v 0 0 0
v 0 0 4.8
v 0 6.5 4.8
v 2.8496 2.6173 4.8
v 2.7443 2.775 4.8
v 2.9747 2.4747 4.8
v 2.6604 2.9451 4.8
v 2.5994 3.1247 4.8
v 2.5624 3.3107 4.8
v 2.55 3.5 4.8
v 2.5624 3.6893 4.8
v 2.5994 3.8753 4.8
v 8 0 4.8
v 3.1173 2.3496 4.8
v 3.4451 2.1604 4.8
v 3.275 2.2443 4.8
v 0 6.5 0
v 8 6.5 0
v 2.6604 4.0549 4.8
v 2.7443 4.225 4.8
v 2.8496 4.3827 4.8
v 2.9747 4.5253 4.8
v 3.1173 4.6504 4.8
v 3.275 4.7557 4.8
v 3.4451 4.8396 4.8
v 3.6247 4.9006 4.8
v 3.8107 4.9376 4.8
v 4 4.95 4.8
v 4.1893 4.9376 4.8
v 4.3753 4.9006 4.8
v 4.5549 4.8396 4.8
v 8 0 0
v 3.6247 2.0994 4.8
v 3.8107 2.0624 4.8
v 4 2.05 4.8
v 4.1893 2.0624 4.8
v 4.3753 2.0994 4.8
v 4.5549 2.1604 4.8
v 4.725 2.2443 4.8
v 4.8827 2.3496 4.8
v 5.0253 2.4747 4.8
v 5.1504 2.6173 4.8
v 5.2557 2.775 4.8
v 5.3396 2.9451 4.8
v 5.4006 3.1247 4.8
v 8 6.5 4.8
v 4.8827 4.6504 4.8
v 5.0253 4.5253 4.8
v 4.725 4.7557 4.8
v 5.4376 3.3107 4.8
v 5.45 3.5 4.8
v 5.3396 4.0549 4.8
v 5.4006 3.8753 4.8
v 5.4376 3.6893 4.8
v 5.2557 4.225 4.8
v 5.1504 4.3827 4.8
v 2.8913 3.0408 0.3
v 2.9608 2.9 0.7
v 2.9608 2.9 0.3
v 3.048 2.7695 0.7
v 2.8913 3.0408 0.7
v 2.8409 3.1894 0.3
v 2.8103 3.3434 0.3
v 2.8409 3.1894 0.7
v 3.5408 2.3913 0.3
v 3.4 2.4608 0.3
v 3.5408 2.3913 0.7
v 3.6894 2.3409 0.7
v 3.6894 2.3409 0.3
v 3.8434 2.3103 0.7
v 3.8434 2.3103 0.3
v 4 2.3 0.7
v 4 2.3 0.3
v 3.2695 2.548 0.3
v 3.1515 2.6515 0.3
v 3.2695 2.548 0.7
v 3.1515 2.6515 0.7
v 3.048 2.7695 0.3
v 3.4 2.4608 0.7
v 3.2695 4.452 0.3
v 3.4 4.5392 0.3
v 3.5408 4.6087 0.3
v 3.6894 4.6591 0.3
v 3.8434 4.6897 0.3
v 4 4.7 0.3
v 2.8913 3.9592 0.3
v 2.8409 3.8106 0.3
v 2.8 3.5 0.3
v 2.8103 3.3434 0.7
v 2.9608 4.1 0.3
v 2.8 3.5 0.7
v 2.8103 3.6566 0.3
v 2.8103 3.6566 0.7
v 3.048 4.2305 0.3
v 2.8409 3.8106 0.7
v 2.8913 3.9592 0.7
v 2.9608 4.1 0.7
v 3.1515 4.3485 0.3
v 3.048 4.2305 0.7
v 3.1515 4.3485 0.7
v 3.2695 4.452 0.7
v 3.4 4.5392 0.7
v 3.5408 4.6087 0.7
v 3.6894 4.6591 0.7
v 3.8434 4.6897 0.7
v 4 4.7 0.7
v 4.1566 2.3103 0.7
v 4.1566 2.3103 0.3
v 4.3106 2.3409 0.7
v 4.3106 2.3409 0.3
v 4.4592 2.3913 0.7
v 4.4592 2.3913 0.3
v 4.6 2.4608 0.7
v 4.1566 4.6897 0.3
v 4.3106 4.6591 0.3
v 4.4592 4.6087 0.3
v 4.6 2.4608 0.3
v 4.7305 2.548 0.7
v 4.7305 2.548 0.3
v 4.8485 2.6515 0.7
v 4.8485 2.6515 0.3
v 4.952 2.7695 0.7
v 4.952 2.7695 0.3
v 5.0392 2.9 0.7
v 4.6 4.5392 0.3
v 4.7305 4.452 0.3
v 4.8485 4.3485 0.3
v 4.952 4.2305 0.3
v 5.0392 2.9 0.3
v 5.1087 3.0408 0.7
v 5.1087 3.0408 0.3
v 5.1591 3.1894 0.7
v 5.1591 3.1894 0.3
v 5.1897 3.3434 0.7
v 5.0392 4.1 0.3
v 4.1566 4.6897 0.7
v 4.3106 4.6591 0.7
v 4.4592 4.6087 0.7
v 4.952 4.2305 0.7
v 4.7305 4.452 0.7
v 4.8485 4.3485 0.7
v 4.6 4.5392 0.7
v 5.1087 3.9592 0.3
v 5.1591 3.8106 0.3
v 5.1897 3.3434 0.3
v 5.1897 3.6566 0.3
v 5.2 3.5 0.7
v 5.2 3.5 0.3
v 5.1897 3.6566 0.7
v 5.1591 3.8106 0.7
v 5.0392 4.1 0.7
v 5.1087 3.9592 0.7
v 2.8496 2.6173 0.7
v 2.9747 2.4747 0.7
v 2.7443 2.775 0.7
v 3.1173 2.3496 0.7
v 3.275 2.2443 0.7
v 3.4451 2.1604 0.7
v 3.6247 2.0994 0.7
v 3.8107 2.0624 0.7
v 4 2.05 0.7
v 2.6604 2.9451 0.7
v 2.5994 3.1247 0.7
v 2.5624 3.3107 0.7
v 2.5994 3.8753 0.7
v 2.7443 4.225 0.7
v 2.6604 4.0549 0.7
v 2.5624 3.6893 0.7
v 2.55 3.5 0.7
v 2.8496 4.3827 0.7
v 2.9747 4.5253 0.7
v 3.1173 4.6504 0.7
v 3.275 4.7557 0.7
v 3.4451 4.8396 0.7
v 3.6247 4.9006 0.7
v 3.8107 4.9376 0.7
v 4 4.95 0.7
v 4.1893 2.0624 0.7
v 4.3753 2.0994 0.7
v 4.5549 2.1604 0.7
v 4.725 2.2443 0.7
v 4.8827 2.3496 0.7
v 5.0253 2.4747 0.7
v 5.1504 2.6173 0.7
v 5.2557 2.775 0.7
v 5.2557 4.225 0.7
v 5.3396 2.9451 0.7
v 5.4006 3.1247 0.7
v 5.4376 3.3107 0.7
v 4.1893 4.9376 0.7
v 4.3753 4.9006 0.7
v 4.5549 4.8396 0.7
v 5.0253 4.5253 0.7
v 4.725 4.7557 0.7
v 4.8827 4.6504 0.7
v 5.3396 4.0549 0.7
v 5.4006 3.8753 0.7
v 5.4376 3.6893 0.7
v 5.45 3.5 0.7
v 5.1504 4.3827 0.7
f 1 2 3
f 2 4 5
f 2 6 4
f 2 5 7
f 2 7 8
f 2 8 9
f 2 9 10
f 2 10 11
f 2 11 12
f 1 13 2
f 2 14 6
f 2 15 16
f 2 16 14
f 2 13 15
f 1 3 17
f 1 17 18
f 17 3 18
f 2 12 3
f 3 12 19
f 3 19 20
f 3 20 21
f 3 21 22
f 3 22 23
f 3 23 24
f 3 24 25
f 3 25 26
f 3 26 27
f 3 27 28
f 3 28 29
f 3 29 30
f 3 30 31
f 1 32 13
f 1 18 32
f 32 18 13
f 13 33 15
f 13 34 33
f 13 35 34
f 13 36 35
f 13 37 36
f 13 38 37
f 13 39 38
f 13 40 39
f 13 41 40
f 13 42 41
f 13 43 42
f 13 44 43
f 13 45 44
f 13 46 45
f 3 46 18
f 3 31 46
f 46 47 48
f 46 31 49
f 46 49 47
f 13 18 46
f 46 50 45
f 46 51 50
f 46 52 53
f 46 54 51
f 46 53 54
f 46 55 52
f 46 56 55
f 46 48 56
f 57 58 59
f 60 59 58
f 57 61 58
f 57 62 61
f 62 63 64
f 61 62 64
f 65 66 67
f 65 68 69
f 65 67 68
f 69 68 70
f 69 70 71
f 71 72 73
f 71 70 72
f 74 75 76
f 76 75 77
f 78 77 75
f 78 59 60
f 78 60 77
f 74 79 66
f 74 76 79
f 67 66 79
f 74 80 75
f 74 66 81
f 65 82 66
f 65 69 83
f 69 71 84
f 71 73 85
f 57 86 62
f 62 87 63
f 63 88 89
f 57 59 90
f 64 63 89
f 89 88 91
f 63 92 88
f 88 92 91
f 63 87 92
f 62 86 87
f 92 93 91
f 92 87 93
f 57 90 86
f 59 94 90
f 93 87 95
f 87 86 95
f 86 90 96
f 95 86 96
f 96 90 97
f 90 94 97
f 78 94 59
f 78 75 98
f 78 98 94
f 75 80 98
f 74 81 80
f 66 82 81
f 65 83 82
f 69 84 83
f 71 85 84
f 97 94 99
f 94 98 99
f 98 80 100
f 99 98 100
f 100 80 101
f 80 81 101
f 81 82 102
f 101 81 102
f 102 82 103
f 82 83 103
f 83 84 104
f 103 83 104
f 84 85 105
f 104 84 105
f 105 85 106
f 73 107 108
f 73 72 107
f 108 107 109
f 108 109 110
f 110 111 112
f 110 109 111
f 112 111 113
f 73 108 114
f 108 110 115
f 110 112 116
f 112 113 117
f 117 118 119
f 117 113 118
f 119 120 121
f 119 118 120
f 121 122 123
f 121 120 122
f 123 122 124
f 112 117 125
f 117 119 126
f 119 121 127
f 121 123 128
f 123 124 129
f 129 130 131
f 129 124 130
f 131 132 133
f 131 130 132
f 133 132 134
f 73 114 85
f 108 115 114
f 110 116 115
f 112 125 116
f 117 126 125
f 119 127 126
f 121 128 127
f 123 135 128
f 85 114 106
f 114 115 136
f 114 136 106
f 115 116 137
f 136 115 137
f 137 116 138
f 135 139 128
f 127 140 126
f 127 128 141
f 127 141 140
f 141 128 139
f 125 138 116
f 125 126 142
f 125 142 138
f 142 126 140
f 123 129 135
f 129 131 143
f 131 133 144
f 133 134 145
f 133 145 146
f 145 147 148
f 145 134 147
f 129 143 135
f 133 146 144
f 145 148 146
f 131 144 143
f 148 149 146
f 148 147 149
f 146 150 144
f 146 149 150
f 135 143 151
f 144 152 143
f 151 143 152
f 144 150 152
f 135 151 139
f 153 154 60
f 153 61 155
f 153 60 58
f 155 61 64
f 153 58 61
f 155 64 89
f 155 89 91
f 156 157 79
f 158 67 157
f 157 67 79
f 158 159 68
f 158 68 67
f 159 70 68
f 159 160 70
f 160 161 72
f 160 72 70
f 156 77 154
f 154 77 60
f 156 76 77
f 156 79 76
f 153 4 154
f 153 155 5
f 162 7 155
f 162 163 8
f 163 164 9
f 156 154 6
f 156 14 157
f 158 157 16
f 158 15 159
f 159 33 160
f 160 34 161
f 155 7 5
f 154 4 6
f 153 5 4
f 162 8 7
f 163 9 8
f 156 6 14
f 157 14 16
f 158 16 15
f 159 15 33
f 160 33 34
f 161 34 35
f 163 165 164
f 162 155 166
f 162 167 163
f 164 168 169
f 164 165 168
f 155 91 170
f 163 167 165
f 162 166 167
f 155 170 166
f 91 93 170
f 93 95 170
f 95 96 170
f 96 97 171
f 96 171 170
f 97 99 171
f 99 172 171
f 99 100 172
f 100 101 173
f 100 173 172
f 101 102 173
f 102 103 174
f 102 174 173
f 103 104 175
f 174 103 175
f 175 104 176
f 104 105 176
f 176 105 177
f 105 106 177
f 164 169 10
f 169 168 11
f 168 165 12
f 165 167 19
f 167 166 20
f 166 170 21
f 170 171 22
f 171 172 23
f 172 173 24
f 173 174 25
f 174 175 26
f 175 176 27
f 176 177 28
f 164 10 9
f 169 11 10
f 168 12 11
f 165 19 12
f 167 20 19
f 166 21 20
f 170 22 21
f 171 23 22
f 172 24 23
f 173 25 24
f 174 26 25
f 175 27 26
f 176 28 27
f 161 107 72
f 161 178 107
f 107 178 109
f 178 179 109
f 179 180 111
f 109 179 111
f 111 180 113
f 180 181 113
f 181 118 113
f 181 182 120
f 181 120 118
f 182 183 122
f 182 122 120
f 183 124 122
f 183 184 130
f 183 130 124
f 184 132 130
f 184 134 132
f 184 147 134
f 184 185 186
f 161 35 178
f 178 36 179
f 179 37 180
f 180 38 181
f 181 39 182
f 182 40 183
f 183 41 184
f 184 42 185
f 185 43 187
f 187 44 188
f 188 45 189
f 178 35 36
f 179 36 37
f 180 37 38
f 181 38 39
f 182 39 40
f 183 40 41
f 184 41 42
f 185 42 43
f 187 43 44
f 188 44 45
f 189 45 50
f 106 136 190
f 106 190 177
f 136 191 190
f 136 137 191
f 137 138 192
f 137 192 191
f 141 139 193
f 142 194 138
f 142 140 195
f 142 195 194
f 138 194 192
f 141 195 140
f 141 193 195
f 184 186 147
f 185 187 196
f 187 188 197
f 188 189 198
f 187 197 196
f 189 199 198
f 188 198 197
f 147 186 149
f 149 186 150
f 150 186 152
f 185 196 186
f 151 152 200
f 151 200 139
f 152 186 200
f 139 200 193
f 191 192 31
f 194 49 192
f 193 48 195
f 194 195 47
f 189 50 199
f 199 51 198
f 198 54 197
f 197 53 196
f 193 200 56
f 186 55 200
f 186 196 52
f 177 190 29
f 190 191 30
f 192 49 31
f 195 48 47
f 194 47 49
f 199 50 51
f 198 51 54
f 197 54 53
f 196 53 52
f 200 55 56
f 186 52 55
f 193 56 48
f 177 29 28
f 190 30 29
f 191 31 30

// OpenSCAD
// file: ../../../cad/v3/hardware.scad
include <params.scad>
use <enclosure.scad>
// PROVISIONAL purchased component envelopes; not production part drawings.
module motor() {
 union() {
  translate([screw_x-6,motor_front-motor_l,motor_bottom]) cube([12,motor_l,10]);
  yrod(screw_x,motor_front-0.1,axis_z,shaft_d,shaft_l+0.1);
  for(x=[screw_x-3,screw_x+3]) translate([x-0.5,motor_front-motor_l-2,motor_bottom+4.5]) cube([1,2.1,1]);
 }
}
module shaft() { yrod(screw_x,motor_front,axis_z,shaft_d,shaft_l); }
module drive_nut(t=0) {
 difference() {
  translate([screw_x,carriage_back+t+nut_slot_y+0.1,axis_z]) rotate([-90,0,0]) union() {
   cylinder(d=nut_af/cos(30),h=nut_height,$fn=6);
   cylinder(d=nut_flange_d,h=nut_flange_t);
  }
  yrod(screw_x,carriage_back+t+nut_slot_y,axis_z,shaft_d+0.2,nut_height+0.2);
 }
}
module battery_holder(raise=0) {
 // Conservative single envelope including cell, contacts and holder.
 translate([93.2,-52,4.5+raise]) cube([22,74,21]);
}
module esp() {
 union() {
  translate([77.5,28,8.3]) cube([17.8,22.5,1.2]);
  translate([78.5,29,9.5]) cube([15.8,20.5,5]);
  translate([81.5,47,9.5]) cube([9,5,3.3]);
 }
}
module power_board() { translate([99,29,8.3]) cube([15,20,7.2]); }
module bridge_board() { translate([98.5,29,20.3]) cube([15,20,7]); }
module oled() {
 union() {
  translate([87.6,53.5,21.5]) cube([27.8,1.6,27.3]);
  translate([88.15,55.1,25]) cube([26.7,1.4,19.3]);
  translate([96.5,50.5,46]) cube([10,3,2.8]);
 }
}
module button() {
 union() {
  xrod(button_panel_x-button_body_l,button_y,button_z,button_body_d,button_body_l);
  xrod(button_panel_x,button_y,button_z,button_flange_d,2);
  xrod(button_panel_x+2,button_y,button_z,12.9,button_face_l-2);
  // Candidate fastening nut envelope; actual nut diameter/thickness to measure.
  difference() {
   xrod(button_panel_x-6,button_y,button_z,17.8,3);
   xrod(button_panel_x-6.1,button_y,button_z,button_hole_d,3.2);
  }
  // Two terminals only; solder and bend radius need physical confirmation.
  for(y=[button_y-2.425,button_y+2.425])
   translate([button_panel_x-button_body_l-button_terminal_l,y-.3,button_z-1]) cube([button_terminal_l,.6,2]);
 }
}
module acrylic() { translate([window_x0-2,window_y0-2,window_pane_z]) cube([window_x1-window_x0+4,window_y1-window_y0+4,window_pane_t]); }
module hinge_pin() { xrod(hinge_pin_x,hinge_y,hinge_z,2,hinge_pin_len); }
module thread_insert(x,y,z) {
 difference() {
  zhole(x,y,z,insert_od,insert_len);
  zhole(x,y,z-.1,2.05,insert_len+.2);
 }
}
module inserts_fixed() {
 for(p=battery_screws) thread_insert(p[0],p[1],2.9);
 for(x=keeper_x) thread_insert(x,keeper_y,44.3);
}
module inserts_lid() {
 for(p=window_clamps) thread_insert(p[0],p[1],window_ear_top);
}
module battery_connector() { translate([91.5,22,12.5]) cube([4.3,5,5]); }
module motor_pads() {
 // 0.3 mm compressed adhesive shim specification, not unspecified empty space.
 translate([78.5,motor_front-motor_l+.1,motor_bottom-0.3]) cube([12,motor_l-.2,0.3]);
 translate([78.5,motor_front-motor_l+.1,motor_top]) cube([12,motor_l-.2,0.3]);
 difference() {
  translate([78.5,-15,motor_bottom]) cube([12,0.3,10]);
  yrod(screw_x,-15.1,axis_z,4.7,0.6);
 }
 // Rear pad clears the two solder terminals.
 difference() {
  translate([78.5,motor_front-motor_l-.3,motor_bottom]) cube([12,0.3,10]);
  translate([80,motor_front-motor_l-.4,motor_bottom+4]) cube([9,0.5,2]);
 }
}
module board_pads() {
 translate([77.5,28,7.4]) cube([17.8,22.5,0.9]);
 translate([99,29,7.4]) cube([15,20,0.9]);
 translate([98.5,29,19.8]) cube([15,20,0.5]);
}

// Illustrative screw envelopes. Intentional pilot-thread interference is excluded
// from solid collision assertions. They remain in preview, BOM and total bounds.
module screw_down(x,y,top,len,d=2,flush=false) {
 color([0.45,0.47,0.5]) {
  zhole(x,y,top-len,d,len);
  if(flush) translate([x,y,top-1.3]) cylinder(d1=d,d2=4,h=1.3);
  else zhole(x,y,top,d==3?5.5:3.6,d==3?2:1.4);
 }
}
// Canonical fastener table: x,y,z,length,diameter,flush,rotationX,headless,owners.
// Preview and interference verification consume this SAME table.
// Stable connection names: keep existing names when adapting module brackets.
function fastener_ids(kind="fixed") = kind=="drive" ? ["F-nut-cap-left","F-nut-cap-right"] :
 kind=="lid" ? ["F-latch-left","F-latch-right","F-window-rear-left","F-window-rear-right","F-window-front-left","F-window-front-right"] :
 ["F-lock-rear-left","F-lock-rear-right","F-lock-front-left","F-lock-front-right",
 "F-guide-rear-left","F-guide-rear-right","F-guide-front","F-motor-left","F-motor-right",
 "F-tray-left","F-tray-right","F-deck-left","F-deck-right","F-esp-left","F-esp-right",
 "F-driver-left","F-driver-right","F-oled-left","F-oled-right",
 "F-battery-rear-left","F-battery-rear-right","F-battery-front-left","F-battery-front-right",
 "F-hinge-left","F-hinge-right"];
function fastener_specs(kind="fixed",t=0) = kind=="drive" ?
 [for(x=[screw_x-4.5,screw_x+4.5]) [x,carriage_back+t-0.2,46,6,2,false,0,false,["nut_cap","nut_carriage"]]] :
 kind=="lid" ? concat(
 [for(x=[93.5,112.5]) [x,8.5,45.2,8,3,false,180,false,["latch_retainer","lid"]]],
 [for(p=window_clamps) [p[0],p[1],window_inner_z,6,2,true,180,false,["window_grille","lid"]]]) :
 concat(
 [for(p=lock_mounts) [p[0],p[1],32.4,6,2,false,0,false,["lock_base","base_box"]]],
 [for(p=guide_screws) [p[0],p[1],44.9,8,2,false,0,false,["guide_cap","lock_base"]]],
 [for(p=motor_screws) [p[0],p[1],motor_clamp_z+2,8,2,false,0,false,["motor_clamp","lock_base"]]],
 [for(p=tray_screws) [p[0],p[1],7.4,4,2,false,0,false,["electronics_tray","base_box"]]],
 [for(p=deck_screws) [p[0],p[1],19.8,6,2,false,0,false,["upper_deck","electronics_tray"]]],
 [for(x=[76.2,96.7]) [x,39,16.8,6,2,false,0,false,["esp_clip","electronics_tray"]]],
 [for(x=[97,115]) [x,38,29.6,6,2,false,0,false,["upper_clip","upper_deck"]]],
 [for(x=[86.8,115.8]) [x,56.3,51,6,2,true,0,false,["oled_bridge","base_box"]]],
 [for(p=battery_screws) [p[0],p[1],0,8,2,true,180,false,["battery_hatch","base_box"]]],
 [for(i=[0:1]) [keeper_x[i],keeper_y,51.1,6,2,true,0,false,[i==0?"hinge_guard_left":"hinge_guard_right","base_box","inserts_fixed"]]]);
module render_screw(s) {
 translate([s[0],s[1],s[2]]) rotate([s[6],0,0])
 if(s[7]) zhole(0,0,-s[3],s[4],s[3]);
 else screw_down(0,0,0,s[3],s[4],s[5]);
}
module fixed_fasteners() { for(s=fastener_specs("fixed")) render_screw(s); }
module moving_fasteners(t=0) { for(s=fastener_specs("drive",t)) render_screw(s); }
module lid_fasteners() { for(s=fastener_specs("lid")) render_screw(s); }
// file: ../../../cad/v3/electronics.scad
include <params.scad>

module electronics_tray() {
 nominal_difference() {
  union() {
   cube_at([74.5,25.5,5.4],[42,27,2]);
   cube_at([74.5,25.5,7.3],[2.5,27,0.7]);
   cube_at([114,25.5,7.3],[2.5,27,0.7]);
   for(p=deck_screws) translate([p[0],p[1],7.3]) cylinder(r=1.3,h=10.7);
   for(x=[76.2,96.7]) cube_at([x-1.2,37,7.3],[2.4,4,7.5]);
  }
  for(p=tray_screws) pilot(p,5.2,8.2,2.4);
  for(x=[90,117]) zhole(x,24,5.2,6.4,3.2);
  for(p=deck_screws) pilot(p,13,18.2,1.7);
  for(x=[76.2,96.7]) zhole(x,39,9.8,1.7,5.2);
  // Tie slots for the lower power board; underside remains accessible off-box.
  for(x=[99.5,112.75]) cube_at([x,33,5.2],[tie_slot_width,8,3.2]);
 }
}
module upper_deck() {
 nominal_difference() {
  union() {
   cube_at([96,25.3,18],[21,27.2,1.8]);
   cube_at([96,27,19.7],[2.3,24,1.8]);
   cube_at([114.3,27,19.7],[2.7,24,1.8]);
   for(x=[97,115]) cube_at([x-1.3,36,19.7],[2.6,4,7.9]);
  }
  for(p=deck_screws) pilot(p,17.8,20,2.4);
  zhole(96.7,39,17.8,4,0.6);
  for(x=[97,115]) zhole(x,38,22.3,1.7,5.5);
 }
}
module esp_clip() {
 nominal_difference() {
  cube_at([74.5,37,14.8],[24,4,2]);
  for(x=[76.2,96.7]) zhole(x,39,14.6,2.4,2.4);
 }
}
module upper_clip() {
 nominal_difference() {
  cube_at([95.5,36,27.6],[21.5,4,2]);
  for(x=[97,115]) zhole(x,38,27.4,2.2,2.4);
 }
}
module oled_bridge() {
 nominal_difference() {
  cube_at([84.3,52.5,49.2],[34,6.1,1.8]);
  for(x=[86.8,115.8]) {
   zhole(x,56.3,49,2.4,2.2);
   countersink(x,56.3,49.7,2.4,4,1.3);
  }
 }
}
// file: ../../../cad/v3/lock.scad
include <params.scad>

module lock_base() {
 nominal_difference() {
  union() {
   cube_at([75,-46,lock_floor],[41,68,3]);
   // Continuous independent bolt support: bed, keyed rail, removable roof.
   cube_at([91,-19,lock_floor_top],[20,24.5,guide_bottom-lock_floor_top]);
   cube_at([bolt_x-key_w/2,-19,key_z0],[key_w,24.5,key_z1-key_z0]);
   for(p=guide_screws) translate([p[0],p[1],lock_floor_top-0.01]) cylinder(r=2.3,h=guide_top-lock_floor_top+0.01);
   for(p=motor_screws) translate([p[0],p[1],lock_floor_top-0.01]) cylinder(r=2.2,h=motor_clamp_z-lock_floor_top+0.01);
   // Motor cradle and front locating shoulder; clamp presses through thin pads.
   cube_at([77.2,-41.8,32.4],[14.6,27.5,motor_bottom-0.3-32.4]);
   cube_at([77.2,-16,32.4],[14.6,2.3,motor_clamp_z-32.4]);
   // Blind front socket: usable bore ends Y=19.8; last 1 mm is solid.
   cube_at([bolt_x-6,14.8,32.4],[12,6,11.6]);
  }
  // Conservative 25x12x10 body; includes the 2.5mm output offset.
  cube_at([screw_x-motor_w/2-0.3,motor_front-motor_l-0.3,motor_bottom-0.3],[motor_w+0.6,motor_l+0.6,motor_h+0.6]);
  yhole(screw_x,-16.3,axis_z,4.7,4);
  // Top-open U seat permits vertical insertion of motor + threaded drive.
  cube_at([screw_x-2.35,-16.3,axis_z],[4.7,4,motor_clamp_z-axis_z+0.2]);
  cube_at([bolt_x-latch_hole/2,13.8,axis_z-latch_hole/2],[latch_hole,6,latch_hole]);
  for(p=lock_mounts) pilot(p,29.2,32.6,2.4);
  for(p=guide_screws) pilot(p,33.2,43.1);
  for(p=motor_screws) pilot(p,motor_clamp_z-6,motor_clamp_z+0.2);
  // Flat reusable rail for future mechanical feedback adapters (SKU pending).
  for(y=[-12,2]) for(x=[112,115]) cube_at([x,y,29.2],[tie_slot_width,5,3.5]);
  // Wiring channels; no closed tunnel around the actuator.
  cube_at([110,15,29.2],[3,7.2,3.5]);
 }
}
module guide_cap() {
 nominal_difference() {
  cube_at([92,-20.5,guide_top],[23,26,guide_cap_t]);
  for(p=guide_screws) pilot(p,42.7,45.1,2.4);
 }
}
module motor_clamp() {
 nominal_difference() {
  cube_at([73.8,-35,motor_clamp_z],[21.4,16,2]);
  for(p=motor_screws) pilot(p,motor_clamp_z-0.2,motor_clamp_z+2.2,2.4);
  cube_at([90.8,-20.7,motor_clamp_z-0.2],[4.6,1.8,2.4]);
 }
}
module bolt_raw(t=0) {
 rear=bolt_back+t;
 nominal_difference() {
  union() {
   cube_at([bolt_x-body_w/2,rear-4,axis_z-body_w/2],[body_w,body_l+4,body_w]);
   cube_at([bolt_x-3,rear+body_l,axis_z-3],[6,tongue_l-taper_l+0.01,6]);
   translate([bolt_x,rear+body_l+tongue_l-taper_l,axis_z]) rotate([-90,0,0])
    linear_extrude(height=taper_l,scale=5/6) square([6,6],center=true);
   // Fork overlaps the main body; lateral/vertical float around the drive finger.
   cube_at([92,rear,axis_z-body_w/2],[7.6,6,body_w]);
  }
  cube_at([91,rear+1.7,35.2],[8.6,2.6,5.6]);
  cube_at([bolt_x-(key_w+0.6)/2,rear-4.1,33.2],[key_w+0.6,body_l+4.2,1.6]);
 }
}
module bolt(t=0,shift=0) { translate([0,0,shift]) bolt_raw(t); }
module nut_carriage(t=0) {
 rear=carriage_back+t;
 nominal_difference() {
  union() {
   cube_at([screw_x-7,rear-2,33.4],[13,10,10.6]);
   cube_at([screw_x+4.5,rear-1.5,36],[8.7,2,4]);
  }
  yhole(screw_x,rear-3,axis_z,shaft_d+0.4,12);
  translate([screw_x,rear+nut_slot_y,axis_z]) rotate([-90,0,0]) {
   cylinder(d=nut_slot_d,h=nut_slot_t,$fn=6);
   cylinder(d=nut_flange_d+0.4,h=nut_flange_t+0.2);
  }
  // Wide open top access for the nut: larger than its circumdiameter.
  cube_at([screw_x-5.3,rear+nut_slot_y,axis_z],[10.6,nut_slot_t,6.2]);
  for(x=[screw_x-4.5,screw_x+4.5]) zhole(x,rear-0.2,39.5,1.7,4.7);
 }
}
module nut_cap(t=0) {
 rear=carriage_back+t;
 nominal_difference() {
  cube_at([screw_x-6.5,rear-2,44],[12.5,10,2]);
  for(x=[screw_x-4.5,screw_x+4.5]) zhole(x,rear-0.2,43.8,2.4,2.4);
 }
}
module fit_bar() { cube([tongue_w,tongue_w,25]); }
module fit_gauge() {
 nominal_difference() {
  cube([30,14,8]);
  for(i=[0:2]) cube_at([2+i*9,3,-0.1],[6.4+i*0.2,6.4+i*0.2,8.2]);
 }
}
// file: ../../../cad/v3/enclosure.scad
include <params.scad>

module base_box() {
 nominal_difference() {
  union() {
   nominal_difference() {
    linear_extrude(height=shell_top) rounded_rect(L,W,4);
    translate([0,0,floor_t]) linear_extrude(height=49) rounded_rect(L-2*wall,W-2*wall,1);
   }
   cube_at([70.5,-57,2.9],[3,114,48.1]);
   // Stationary rear header reaches the same closed height as the lid.
   intersection() {
    cube_at([-117,-60,47],[234,9,8]);
    union() { cube_at([-118,-61,46],[236,11,5]); xrod(-118,hinge_y,hinge_z,8,236); }
   }
   for(k=fixed_knuckles) xrod(k[0],hinge_y,hinge_z,hinge_od,k[1]-k[0]);
   for(x=keeper_x) cube_at([x-4,-54,43.5],[8,6.5,4.8]);
   // Battery chamber: side/end walls and a fixed ceiling connected to outer wall.
   cube_at([90,-54.5,2.9],[2.7,79,23.1]);
   cube_at([90,-54.5,2.9],[30,2.2,23.1]);
   cube_at([90,22.3,2.9],[30,2.2,23.1]);
   cube_at([90,-54.5,26],[30,79,3.4]);
   for(p=battery_screws) translate([p[0],p[1],2.8]) cylinder(r=3,h=5.5);
   for(p=lock_mounts) if(p[0]<90) translate([p[0],p[1],2.9]) cylinder(r=3,h=26.5);
   for(p=tray_screws) translate([p[0],p[1],2.9]) cylinder(r=2.3,h=2.5);
   // OLED bottom stop and two connected side rails.
   cube_at([85.3,53,19.2],[32.4,4.1,2]);
   cube_at([85.3,53,21.1],[2.3,4.1,28.1]);
   cube_at([115.4,53,21.1],[2.3,4.1,28.1]);
   // Recessed side-wall panel: 5.7mm button face stays inside X=120.
   difference() {
    xrod(button_panel_x-3,button_y,button_z,21,120-(button_panel_x-3));
    xrod(button_panel_x,button_y,button_z,18.8,120-button_panel_x+.1);
   }

  }
  // A continuous bore is essential: otherwise the fixed header traps the pin.
  xhole(-120.1,hinge_y,hinge_z,hinge_bore,240.2);
  // Moving hinge knuckles and webs get a rectangular swept-side relief.
  for(k=moving_knuckles) cube_at([k[0]-0.3,-60.2,46.6],[k[1]-k[0]+0.6,9.8,9]);
  for(x=keeper_x) {
   cube_at([x-4.3,-58.3,48.3],[8.6,11.1,7]);
   zhole(x,keeper_y,43.8,2.4,4.6);
   let($feature_kind="insert") zhole(x,keeper_y,44.2,insert_hole_d(),4.2);
  }
  // Battery extraction aperture, and a shallow seat for the flush service plate.
  cube_at([92.7,-52.3,-0.1],[22.6,74.6,8.6]);
  cube_at([87.7,-56.3,-0.1],[31.6,82.6,3]);
  for(p=battery_screws) {
   pilot(p,2.7,8.4,2.4);
   let($feature_kind="insert") zhole(p[0],p[1],2.8,insert_hole_d(),4.1);
  }
  for(p=lock_mounts) pilot(p,26.2,29.6,1.7);
  for(p=tray_screws) pilot(p,3.1,5.6,1.7);
  // Battery connector passage enters the electronics bay, not the actuator above.
  cube_at([91,21.8,12],[7,3.4,6]);
  // Front optical window / recessed button. There is deliberately no USB hole.
  cube_at([87.7,56.7,24.5],[27.6,3.6,20.5]);
  xhole(button_panel_x-3.1,button_y,button_z,button_hole_d,3.2);
  xhole(button_panel_x,button_y,button_z,18.8,120-button_panel_x+.1);
  // PCB insertion channels; stop ledge remains below them.
  cube_at([87.3,53.2,21.3],[28.4,2.2,28.2]);
  cube_at([84.2,52.4,49.2],[34.2,6.3,1.9]);
  for(x=[86.8,115.8]) zhole(x,56.3,43,1.7,6.5);
 }
}
module lid() {
 union() {
 nominal_difference() {
  union() {
   cube_at([-120,-50.5,lid_bottom],[240,110.5,H-lid_bottom]);
   for(k=moving_knuckles) {
    xrod(k[0],hinge_y,hinge_z,hinge_od,k[1]-k[0]);
    cube_at([k[0],-53,51.4],[k[1]-k[0],4,3.6]);
   }
   // Internal T-head receiver and inside-only retainer screw lands.
   cube_at([92,3,46.7],[22,11,4.8]);
   // Inside-only hard stops carry screw preload instead of crushing the pane.
   for(p=window_clamps) cube_at([p[0]-9,p[1]-3.5,window_ear_top],[18,7,lid_bottom+0.1-window_ear_top]);
  }
  for(k=moving_knuckles) xhole(k[0]-0.1,hinge_y,hinge_z,hinge_bore,k[1]-k[0]+0.2);
  cube_at([window_x0,window_y0,window_ear_top-0.1],[window_x1-window_x0,window_y1-window_y0,H-window_ear_top+0.2]);
  // Interior rebate clears the pane; the outside grille closes it.
  cube_at([window_x0-3,window_y0-3,window_ear_top-0.1],[window_x1-window_x0+6,window_y1-window_y0+6,window_outer_z-window_ear_top+0.1]);
  cube_at([94.7,5.7,46.6],[16.6,5.6,3.7]);
  cube_at([97.2,5.7,45.8],[11.6,5.6,4.5]);
  for(x=[93.5,112.5]) zhole(x,8.5,45.8,2.4,8.4);
  for(p=window_clamps) {
   zhole(p[0],p[1],window_ear_top-0.1,2.4,54.2-window_ear_top+0.1);
   let($feature_kind="insert") zhole(p[0],p[1],window_ear_top-0.1,insert_hole_d(),4.1);
  }
 }
 // Union after cutting the opening: five short-span ribs join both edges.
 translate([0,0,window_outer_z]) linear_extrude(height=H-window_outer_z) window_grid_2d();
 }
}
module latch() {
 nominal_difference() {
  union() {
   cube_at([bolt_x-5.5,latch_y,latch_z0],[11,5,43.1-latch_z0]);
   cube_at([bolt_x-latch_neck_w/2,latch_y,43],[latch_neck_w,5,2.1]);
   cube_at([bolt_x-5.5,latch_y,45],[11,5,2.1]);
   cube_at([bolt_x-8,latch_y,47],[16,5,3]);
  }
  cube_at([bolt_x-latch_hole/2,latch_y-0.1,axis_z-latch_hole/2],[latch_hole,5.2,latch_hole]);
 }
}
module latch_retainer() {
 nominal_difference() {
  cube_at([92,3,retainer_z],[22,11,retainer_t]);
  cube_at([97.2,5.7,45],[11.6,5.6,2]);
  for(x=[93.5,112.5]) zhole(x,8.5,45,3.4,2);
 }
}
module window_grid_2d() {
 union() {
  nominal_difference() {
   translate([window_x0-3,window_y0-3]) square([window_x1-window_x0+6,window_y1-window_y0+6]);
   translate([window_x0,window_y0]) square([window_x1-window_x0,window_y1-window_y0]);
  }
  for(x=window_bar_x) {
   translate([x-window_bar_w/2,window_y0-2]) square([window_bar_w,window_y1-window_y0+4]);
   // Concave radius at all four rib roots, tangent to rib and window frame.
   for(side=[-1,1]) for(end=[0,1])
    translate([x+side*window_bar_w/2,end?window_y1:window_y0]) scale([side,end?-1:1])
     nominal_difference() { square([window_root_r,window_root_r]); translate([window_root_r,window_root_r]) circle(r=window_root_r); }
  }
 }
}
module window_grille() {
 nominal_difference() {
  union() {
   translate([0,0,window_inner_z]) linear_extrude(height=window_inner_t) window_grid_2d();
   for(p=window_clamps) cube_at([p[0]-9,p[1]-3.5,window_inner_z],[18,7,window_ear_t]);
  }
  for(p=window_clamps) {
   zhole(p[0],p[1],window_inner_z-0.1,2.4,window_inner_t+0.2);
   countersink(p[0],p[1],window_inner_z-0.01,4.2,2.4,1.31);
  }
 }
}
module battery_hatch() {
 nominal_difference() {
  union() {
   cube_at([88,-56,0],[31,82,2.6]);
   for(x=[96,112]) for(y=[-47,17]) cube_at([x-2,y-2,2.5],[4,4,1.8]);
  }
  for(p=battery_screws) {
   pilot(p,-0.1,2.8,2.4);
   countersink(p[0],p[1],-0.01,4.2,2.4,1.3);
  }
 }
}
module hinge_guard(side=-1) {
 x=side<0?keeper_x[0]:keeper_x[1];
 stop=side<0?hinge_pin_x-pin_end_play-keeper_wall:hinge_pin_x+hinge_pin_len+pin_end_play;
 nominal_difference() {
  union() {
   intersection() {
    union() {
     cube_at([x-4,-58,53],[8,7.2,2]);
     cube_at([x-4,-52,48.3],[8,1.2,6.7]);
     // End cheek remains within the fixed hinge's radial envelope.
     cube_at([stop,-58,48.3],[keeper_wall,6,6.7]);
    }
    xrod(x-4.1,hinge_y,hinge_z,8.4,8.2);
   }
   cube_at([x-4,-53.6,48.3],[8,6.1,2.8]);
  }
  zhole(x,keeper_y,48.1,2.4,3.2);
  countersink(x,keeper_y,49.8,2.4,4,1.3);
  zhole(x,keeper_y,51.09,4.2,4);
 }
}

module insert_coupon() {
 nominal_difference() {
  cube([36,12,6]);
  for(i=[0:2]) {
   zhole(6+i*12,6,1.8,2.8+i*.1,4.3);
   countersink(6+i*12,6,5.6,2.8+i*.1,3.5,.5);
  }
 }
}
module keeper_insert_coupon() {
 nominal_difference() {
  cube([8,6.5,4.8]);
  zhole(4,3.5,.3,2.4,4.6);
  zhole(4,3.5,.7,insert_pilot_d,4.2);
 }
}
module window_insert_coupon() {
 nominal_difference() {
  cube([18,7,5.1]);
  zhole(9,3.5,-.1,2.4,4.4);
  zhole(9,3.5,-.1,insert_pilot_d,4.1);
 }
}
module hinge_bore_coupon() {
 nominal_difference() {
  cube([20,30,8]);
  for(i=[0:2]) xhole(-.1,5+i*10,4,2.2+i*.2,20.2);
 }
}
// file: ../../../cad/v3/references.scad
// Generated from engineering/references.json; do not edit.
// SHA256 f9069af00d99415f6bf80c07423463d1202e891299ade11124e069a9ba9990c0
// Visual corner/platform profiles are approximate. Dimensions are nominal mm.
module reference_phone() {
 translate([-23,0,0]) union() {
  translate([0,0,9.43]) linear_extrude(height=8.75)
   offset(r=12) square([139.4,54.0],center=true);
  translate([-55.7,0,6.88])
   linear_extrude(height=2.55) offset(r=9) square([28,56],center=true);
  translate([-67.33,-24.630000000000003,5]) cylinder(d=16.2,h=1.88,$fn=64);
  translate([-48.09,-24.630000000000003,5]) cylinder(d=16.2,h=1.88,$fn=64);
  translate([-57.71000000000001,-6.640000000000001,5]) cylinder(d=16.2,h=1.88,$fn=64);
  translate([-50.870000000000005,-39.45,12.475]) cube([6.9,.45,2.66]);
  translate([-38.870000000000005,-39.45,12.475]) cube([11.2,.45,2.66]);
  translate([-24.67,-39.45,12.475]) cube([11.2,.45,2.66]);
  translate([-35.02,39.0,12.475]) cube([17.7,.45,2.66]);
  translate([21.56999999999999,39.0,12.475]) cube([17.1,.45,2.66]);
 }
}
module reference_card() {
 translate([-7,0,18.18])
 linear_extrude(height=0.76) offset(r=3.18)
 square([79.24,47.62],center=true);
}
// file: ../../../cad/v3/params.scad
// TetherLock V3 STRUCTURAL PROTOTYPE. mm / degrees. Hardware SKUs NOT frozen.
// World: X long direction; +Y front; Z bottom=0. Closed assembly <=240x120x55.
$fn=48;
L=240; W=120; H=55;
wall=3; floor_t=3; shell_top=51; lid_bottom=51.4;
divider_x=72; divider_t=3;
hinge_y=-55; hinge_z=51; hinge_od=8; hinge_bore=2.4;
fixed_knuckles=[[-102,-90],[-30,-18],[42,54]];
moving_knuckles=[[-89.6,-78],[-17.6,-6],[54.4,66]];
hinge_pin_x=-107; hinge_pin_len=180;
keeper_x=[-108,77.5]; keeper_y=-50.5;
pin_end_play=0.5; keeper_wall=1.5;
insert_od=3.2; insert_len=4; insert_pilot_d=2.9;
$print_bores=false;
function insert_hole_d() = $print_bores ? insert_pilot_d : insert_od+0.05;
stroke=14;
bolt_x=103; axis_z=38; bolt_back=-14.5; carriage_back=-11;
body_w=9.2; body_l=6; tongue_w=6; tongue_l=13.5; taper_l=0.8;
guide_clearance=0.3;
screw_x=84.5; motor_front=-15;
// Seller image: gearbox 9; motor text 16 vs drawing 15; reserve 25 total.
// Output offset 2.5: rotate motor about its shaft so body is ABOVE the axis.
motor_l=25; motor_w=12; motor_h=10; motor_axis_offset=2.5;
shaft_l=55; shaft_d=4; shaft_pitch=0.7; shaft_length_tolerance=1;
motor_bottom=axis_z+motor_axis_offset-motor_h/2;
motor_top=motor_bottom+motor_h; motor_clamp_z=motor_top+0.3;
// Supplier flange nut NOT dimensioned: conservative adjustable candidate.
nut_af=7; nut_flange_d=10; nut_height=5; nut_flange_t=1;
// R16-503 drawing; threaded mounting diameter remains provisional 16mm.
button_y=30; button_z=40.5; button_panel_x=114;
button_hole_d=16.4; button_body_d=15.8; button_flange_d=17.8;
button_body_l=18.3; button_terminal_l=6; button_face_l=5.7;
tie_width=2.5; tie_slot_width=3.0;
lock_floor=29.4; lock_floor_top=32.4;
guide_bottom=33.1; guide_top=42.9; guide_cap_t=2;
key_w=2.8; key_z0=33.0; key_z1=34.5;
nut_slot_d=nut_af/cos(30)+0.4; nut_slot_y=1.5; nut_slot_t=nut_height+0.4;
latch_y=6; latch_t=5; latch_hole=6.8;
latch_z0=32.6; latch_neck_w=6;
retainer_z=45.2; retainer_t=1.5;
window_x0=-100; window_x1=45; window_y0=-38; window_y1=40;
window_clamps=[[-94,-43],[39,-43],[-94,45],[39,45]];
window_bar_x=[-76,-52,-28,-4,20]; window_bar_w=5; window_root_r=2;
window_outer_z=52; window_pane_t=1.5;
window_pane_z=window_outer_z-window_pane_t;
// Pane contact and screw ears are independent: preload is carried by the ears.
window_inner_z=47.4; window_inner_t=3.1;
window_inner_top=window_inner_z+window_inner_t;
window_ear_t=2.5; window_ear_top=window_inner_z+window_ear_t;
assert(window_inner_z>=47,"Window grille must preserve storage headroom");
lock_mounts=[[77,-43],[113,-43],[77,19],[113,19]];
guide_screws=[[93.5,-18],[114,-18],[114,-2]];
motor_screws=[[76,-27],[93,-27]];
battery_screws=[[90,-54],[117,-54],[90,24],[117,24]];
tray_screws=[[76,27],[115,51]];
deck_screws=[[97.5,27],[115,50.8]];
print_parts=["base_box","lid","lock_base","guide_cap","motor_clamp",
 "bolt","nut_carriage","nut_cap","latch","latch_retainer","window_grille",
 "battery_hatch","electronics_tray","upper_deck","esp_clip","upper_clip",
 "oled_bridge","hinge_guard_left","hinge_guard_right","fit_bar","fit_gauge",
 "insert_coupon","keeper_insert_coupon","window_insert_coupon","hinge_bore_coupon"];
assembly_parts=["base_box","lid","lock_base","guide_cap","motor_clamp",
 "bolt","nut_carriage","nut_cap","latch","latch_retainer",
 "window_grille",
 "battery_hatch","electronics_tray","upper_deck","esp_clip","upper_clip","oled_bridge",
 "hinge_guard_left","hinge_guard_right"];
hardware_parts=["motor","drive_nut","battery_holder","esp","power_board",
 "bridge_board","oled","button","acrylic","hinge_pin","inserts_fixed","inserts_lid",
 "battery_connector",
 "motor_pads","board_pads"];
// All holes below are pilot/clearance geometry, not modelled screw threads.
module feature(axis,center,d,h,kind="clearance",details=[]) {
 if(!is_undef($export_features) && $export_features)
  echo(["TL_FEATURE",$feature_part,axis,center,d,h,kind,details]);
}
// These wrappers keep CAD feature dimensions attached to the geometry that uses
// them. The boolean operation is part of the export, not guessed from a mesh.
module nominal_difference() {
 base=is_undef($feature_operation)?"solid":$feature_operation;
 difference() {
  let($feature_operation=base) children(0);
  if($children>1) for(i=[1:$children-1])
   let($feature_operation=base=="solid"?"cut":"solid") children(i);
 }
}
module cube_at(position,size) {
 feature("BOX",position,0,0,"box",[size,is_undef($feature_operation)?"solid":$feature_operation]);
 translate(position) cube(size);
}
module zhole(x,y,z,d,h) {
 feature("Z",[x,y,z],d,h,is_undef($feature_kind)?(d<2?"pilot":"clearance"):$feature_kind);
 translate([x,y,z]) cylinder(d=d,h=h);
}
module yrod(x,y,z,d,h) { translate([x,y,z]) rotate([-90,0,0]) cylinder(d=d,h=h); }
module xrod(x,y,z,d,h) { translate([x,y,z]) rotate([0,90,0]) cylinder(d=d,h=h); }
module yhole(x,y,z,d,h,kind="clearance") { feature("Y",[x,y,z],d,h,kind); yrod(x,y,z,d,h); }
module xhole(x,y,z,d,h,kind="clearance") { feature("X",[x,y,z],d,h,kind); xrod(x,y,z,d,h); }
module countersink(x,y,z,d1,d2,h) {
 feature("Z",[x,y,z],d1,h,"countersink",[d2]);
 translate([x,y,z]) cylinder(d1=d1,d2=d2,h=h);
}
module rounded_rect(l,w,r) { offset(r=r) square([l-2*r,w-2*r],center=true); }
module lid_turn(a) { translate([0,hinge_y,hinge_z]) rotate([a,0,0]) translate([0,-hinge_y,-hinge_z]) children(); }
module pilot(xy,z0,z1,d=1.7) { let($feature_kind=d<2?"pilot":"clearance") zhole(xy[0],xy[1],z0,d,z1-z0); }
// main file
include <../../../cad/v3/assembly.scad>
view="metadata";
print_part("keeper_insert_coupon");
